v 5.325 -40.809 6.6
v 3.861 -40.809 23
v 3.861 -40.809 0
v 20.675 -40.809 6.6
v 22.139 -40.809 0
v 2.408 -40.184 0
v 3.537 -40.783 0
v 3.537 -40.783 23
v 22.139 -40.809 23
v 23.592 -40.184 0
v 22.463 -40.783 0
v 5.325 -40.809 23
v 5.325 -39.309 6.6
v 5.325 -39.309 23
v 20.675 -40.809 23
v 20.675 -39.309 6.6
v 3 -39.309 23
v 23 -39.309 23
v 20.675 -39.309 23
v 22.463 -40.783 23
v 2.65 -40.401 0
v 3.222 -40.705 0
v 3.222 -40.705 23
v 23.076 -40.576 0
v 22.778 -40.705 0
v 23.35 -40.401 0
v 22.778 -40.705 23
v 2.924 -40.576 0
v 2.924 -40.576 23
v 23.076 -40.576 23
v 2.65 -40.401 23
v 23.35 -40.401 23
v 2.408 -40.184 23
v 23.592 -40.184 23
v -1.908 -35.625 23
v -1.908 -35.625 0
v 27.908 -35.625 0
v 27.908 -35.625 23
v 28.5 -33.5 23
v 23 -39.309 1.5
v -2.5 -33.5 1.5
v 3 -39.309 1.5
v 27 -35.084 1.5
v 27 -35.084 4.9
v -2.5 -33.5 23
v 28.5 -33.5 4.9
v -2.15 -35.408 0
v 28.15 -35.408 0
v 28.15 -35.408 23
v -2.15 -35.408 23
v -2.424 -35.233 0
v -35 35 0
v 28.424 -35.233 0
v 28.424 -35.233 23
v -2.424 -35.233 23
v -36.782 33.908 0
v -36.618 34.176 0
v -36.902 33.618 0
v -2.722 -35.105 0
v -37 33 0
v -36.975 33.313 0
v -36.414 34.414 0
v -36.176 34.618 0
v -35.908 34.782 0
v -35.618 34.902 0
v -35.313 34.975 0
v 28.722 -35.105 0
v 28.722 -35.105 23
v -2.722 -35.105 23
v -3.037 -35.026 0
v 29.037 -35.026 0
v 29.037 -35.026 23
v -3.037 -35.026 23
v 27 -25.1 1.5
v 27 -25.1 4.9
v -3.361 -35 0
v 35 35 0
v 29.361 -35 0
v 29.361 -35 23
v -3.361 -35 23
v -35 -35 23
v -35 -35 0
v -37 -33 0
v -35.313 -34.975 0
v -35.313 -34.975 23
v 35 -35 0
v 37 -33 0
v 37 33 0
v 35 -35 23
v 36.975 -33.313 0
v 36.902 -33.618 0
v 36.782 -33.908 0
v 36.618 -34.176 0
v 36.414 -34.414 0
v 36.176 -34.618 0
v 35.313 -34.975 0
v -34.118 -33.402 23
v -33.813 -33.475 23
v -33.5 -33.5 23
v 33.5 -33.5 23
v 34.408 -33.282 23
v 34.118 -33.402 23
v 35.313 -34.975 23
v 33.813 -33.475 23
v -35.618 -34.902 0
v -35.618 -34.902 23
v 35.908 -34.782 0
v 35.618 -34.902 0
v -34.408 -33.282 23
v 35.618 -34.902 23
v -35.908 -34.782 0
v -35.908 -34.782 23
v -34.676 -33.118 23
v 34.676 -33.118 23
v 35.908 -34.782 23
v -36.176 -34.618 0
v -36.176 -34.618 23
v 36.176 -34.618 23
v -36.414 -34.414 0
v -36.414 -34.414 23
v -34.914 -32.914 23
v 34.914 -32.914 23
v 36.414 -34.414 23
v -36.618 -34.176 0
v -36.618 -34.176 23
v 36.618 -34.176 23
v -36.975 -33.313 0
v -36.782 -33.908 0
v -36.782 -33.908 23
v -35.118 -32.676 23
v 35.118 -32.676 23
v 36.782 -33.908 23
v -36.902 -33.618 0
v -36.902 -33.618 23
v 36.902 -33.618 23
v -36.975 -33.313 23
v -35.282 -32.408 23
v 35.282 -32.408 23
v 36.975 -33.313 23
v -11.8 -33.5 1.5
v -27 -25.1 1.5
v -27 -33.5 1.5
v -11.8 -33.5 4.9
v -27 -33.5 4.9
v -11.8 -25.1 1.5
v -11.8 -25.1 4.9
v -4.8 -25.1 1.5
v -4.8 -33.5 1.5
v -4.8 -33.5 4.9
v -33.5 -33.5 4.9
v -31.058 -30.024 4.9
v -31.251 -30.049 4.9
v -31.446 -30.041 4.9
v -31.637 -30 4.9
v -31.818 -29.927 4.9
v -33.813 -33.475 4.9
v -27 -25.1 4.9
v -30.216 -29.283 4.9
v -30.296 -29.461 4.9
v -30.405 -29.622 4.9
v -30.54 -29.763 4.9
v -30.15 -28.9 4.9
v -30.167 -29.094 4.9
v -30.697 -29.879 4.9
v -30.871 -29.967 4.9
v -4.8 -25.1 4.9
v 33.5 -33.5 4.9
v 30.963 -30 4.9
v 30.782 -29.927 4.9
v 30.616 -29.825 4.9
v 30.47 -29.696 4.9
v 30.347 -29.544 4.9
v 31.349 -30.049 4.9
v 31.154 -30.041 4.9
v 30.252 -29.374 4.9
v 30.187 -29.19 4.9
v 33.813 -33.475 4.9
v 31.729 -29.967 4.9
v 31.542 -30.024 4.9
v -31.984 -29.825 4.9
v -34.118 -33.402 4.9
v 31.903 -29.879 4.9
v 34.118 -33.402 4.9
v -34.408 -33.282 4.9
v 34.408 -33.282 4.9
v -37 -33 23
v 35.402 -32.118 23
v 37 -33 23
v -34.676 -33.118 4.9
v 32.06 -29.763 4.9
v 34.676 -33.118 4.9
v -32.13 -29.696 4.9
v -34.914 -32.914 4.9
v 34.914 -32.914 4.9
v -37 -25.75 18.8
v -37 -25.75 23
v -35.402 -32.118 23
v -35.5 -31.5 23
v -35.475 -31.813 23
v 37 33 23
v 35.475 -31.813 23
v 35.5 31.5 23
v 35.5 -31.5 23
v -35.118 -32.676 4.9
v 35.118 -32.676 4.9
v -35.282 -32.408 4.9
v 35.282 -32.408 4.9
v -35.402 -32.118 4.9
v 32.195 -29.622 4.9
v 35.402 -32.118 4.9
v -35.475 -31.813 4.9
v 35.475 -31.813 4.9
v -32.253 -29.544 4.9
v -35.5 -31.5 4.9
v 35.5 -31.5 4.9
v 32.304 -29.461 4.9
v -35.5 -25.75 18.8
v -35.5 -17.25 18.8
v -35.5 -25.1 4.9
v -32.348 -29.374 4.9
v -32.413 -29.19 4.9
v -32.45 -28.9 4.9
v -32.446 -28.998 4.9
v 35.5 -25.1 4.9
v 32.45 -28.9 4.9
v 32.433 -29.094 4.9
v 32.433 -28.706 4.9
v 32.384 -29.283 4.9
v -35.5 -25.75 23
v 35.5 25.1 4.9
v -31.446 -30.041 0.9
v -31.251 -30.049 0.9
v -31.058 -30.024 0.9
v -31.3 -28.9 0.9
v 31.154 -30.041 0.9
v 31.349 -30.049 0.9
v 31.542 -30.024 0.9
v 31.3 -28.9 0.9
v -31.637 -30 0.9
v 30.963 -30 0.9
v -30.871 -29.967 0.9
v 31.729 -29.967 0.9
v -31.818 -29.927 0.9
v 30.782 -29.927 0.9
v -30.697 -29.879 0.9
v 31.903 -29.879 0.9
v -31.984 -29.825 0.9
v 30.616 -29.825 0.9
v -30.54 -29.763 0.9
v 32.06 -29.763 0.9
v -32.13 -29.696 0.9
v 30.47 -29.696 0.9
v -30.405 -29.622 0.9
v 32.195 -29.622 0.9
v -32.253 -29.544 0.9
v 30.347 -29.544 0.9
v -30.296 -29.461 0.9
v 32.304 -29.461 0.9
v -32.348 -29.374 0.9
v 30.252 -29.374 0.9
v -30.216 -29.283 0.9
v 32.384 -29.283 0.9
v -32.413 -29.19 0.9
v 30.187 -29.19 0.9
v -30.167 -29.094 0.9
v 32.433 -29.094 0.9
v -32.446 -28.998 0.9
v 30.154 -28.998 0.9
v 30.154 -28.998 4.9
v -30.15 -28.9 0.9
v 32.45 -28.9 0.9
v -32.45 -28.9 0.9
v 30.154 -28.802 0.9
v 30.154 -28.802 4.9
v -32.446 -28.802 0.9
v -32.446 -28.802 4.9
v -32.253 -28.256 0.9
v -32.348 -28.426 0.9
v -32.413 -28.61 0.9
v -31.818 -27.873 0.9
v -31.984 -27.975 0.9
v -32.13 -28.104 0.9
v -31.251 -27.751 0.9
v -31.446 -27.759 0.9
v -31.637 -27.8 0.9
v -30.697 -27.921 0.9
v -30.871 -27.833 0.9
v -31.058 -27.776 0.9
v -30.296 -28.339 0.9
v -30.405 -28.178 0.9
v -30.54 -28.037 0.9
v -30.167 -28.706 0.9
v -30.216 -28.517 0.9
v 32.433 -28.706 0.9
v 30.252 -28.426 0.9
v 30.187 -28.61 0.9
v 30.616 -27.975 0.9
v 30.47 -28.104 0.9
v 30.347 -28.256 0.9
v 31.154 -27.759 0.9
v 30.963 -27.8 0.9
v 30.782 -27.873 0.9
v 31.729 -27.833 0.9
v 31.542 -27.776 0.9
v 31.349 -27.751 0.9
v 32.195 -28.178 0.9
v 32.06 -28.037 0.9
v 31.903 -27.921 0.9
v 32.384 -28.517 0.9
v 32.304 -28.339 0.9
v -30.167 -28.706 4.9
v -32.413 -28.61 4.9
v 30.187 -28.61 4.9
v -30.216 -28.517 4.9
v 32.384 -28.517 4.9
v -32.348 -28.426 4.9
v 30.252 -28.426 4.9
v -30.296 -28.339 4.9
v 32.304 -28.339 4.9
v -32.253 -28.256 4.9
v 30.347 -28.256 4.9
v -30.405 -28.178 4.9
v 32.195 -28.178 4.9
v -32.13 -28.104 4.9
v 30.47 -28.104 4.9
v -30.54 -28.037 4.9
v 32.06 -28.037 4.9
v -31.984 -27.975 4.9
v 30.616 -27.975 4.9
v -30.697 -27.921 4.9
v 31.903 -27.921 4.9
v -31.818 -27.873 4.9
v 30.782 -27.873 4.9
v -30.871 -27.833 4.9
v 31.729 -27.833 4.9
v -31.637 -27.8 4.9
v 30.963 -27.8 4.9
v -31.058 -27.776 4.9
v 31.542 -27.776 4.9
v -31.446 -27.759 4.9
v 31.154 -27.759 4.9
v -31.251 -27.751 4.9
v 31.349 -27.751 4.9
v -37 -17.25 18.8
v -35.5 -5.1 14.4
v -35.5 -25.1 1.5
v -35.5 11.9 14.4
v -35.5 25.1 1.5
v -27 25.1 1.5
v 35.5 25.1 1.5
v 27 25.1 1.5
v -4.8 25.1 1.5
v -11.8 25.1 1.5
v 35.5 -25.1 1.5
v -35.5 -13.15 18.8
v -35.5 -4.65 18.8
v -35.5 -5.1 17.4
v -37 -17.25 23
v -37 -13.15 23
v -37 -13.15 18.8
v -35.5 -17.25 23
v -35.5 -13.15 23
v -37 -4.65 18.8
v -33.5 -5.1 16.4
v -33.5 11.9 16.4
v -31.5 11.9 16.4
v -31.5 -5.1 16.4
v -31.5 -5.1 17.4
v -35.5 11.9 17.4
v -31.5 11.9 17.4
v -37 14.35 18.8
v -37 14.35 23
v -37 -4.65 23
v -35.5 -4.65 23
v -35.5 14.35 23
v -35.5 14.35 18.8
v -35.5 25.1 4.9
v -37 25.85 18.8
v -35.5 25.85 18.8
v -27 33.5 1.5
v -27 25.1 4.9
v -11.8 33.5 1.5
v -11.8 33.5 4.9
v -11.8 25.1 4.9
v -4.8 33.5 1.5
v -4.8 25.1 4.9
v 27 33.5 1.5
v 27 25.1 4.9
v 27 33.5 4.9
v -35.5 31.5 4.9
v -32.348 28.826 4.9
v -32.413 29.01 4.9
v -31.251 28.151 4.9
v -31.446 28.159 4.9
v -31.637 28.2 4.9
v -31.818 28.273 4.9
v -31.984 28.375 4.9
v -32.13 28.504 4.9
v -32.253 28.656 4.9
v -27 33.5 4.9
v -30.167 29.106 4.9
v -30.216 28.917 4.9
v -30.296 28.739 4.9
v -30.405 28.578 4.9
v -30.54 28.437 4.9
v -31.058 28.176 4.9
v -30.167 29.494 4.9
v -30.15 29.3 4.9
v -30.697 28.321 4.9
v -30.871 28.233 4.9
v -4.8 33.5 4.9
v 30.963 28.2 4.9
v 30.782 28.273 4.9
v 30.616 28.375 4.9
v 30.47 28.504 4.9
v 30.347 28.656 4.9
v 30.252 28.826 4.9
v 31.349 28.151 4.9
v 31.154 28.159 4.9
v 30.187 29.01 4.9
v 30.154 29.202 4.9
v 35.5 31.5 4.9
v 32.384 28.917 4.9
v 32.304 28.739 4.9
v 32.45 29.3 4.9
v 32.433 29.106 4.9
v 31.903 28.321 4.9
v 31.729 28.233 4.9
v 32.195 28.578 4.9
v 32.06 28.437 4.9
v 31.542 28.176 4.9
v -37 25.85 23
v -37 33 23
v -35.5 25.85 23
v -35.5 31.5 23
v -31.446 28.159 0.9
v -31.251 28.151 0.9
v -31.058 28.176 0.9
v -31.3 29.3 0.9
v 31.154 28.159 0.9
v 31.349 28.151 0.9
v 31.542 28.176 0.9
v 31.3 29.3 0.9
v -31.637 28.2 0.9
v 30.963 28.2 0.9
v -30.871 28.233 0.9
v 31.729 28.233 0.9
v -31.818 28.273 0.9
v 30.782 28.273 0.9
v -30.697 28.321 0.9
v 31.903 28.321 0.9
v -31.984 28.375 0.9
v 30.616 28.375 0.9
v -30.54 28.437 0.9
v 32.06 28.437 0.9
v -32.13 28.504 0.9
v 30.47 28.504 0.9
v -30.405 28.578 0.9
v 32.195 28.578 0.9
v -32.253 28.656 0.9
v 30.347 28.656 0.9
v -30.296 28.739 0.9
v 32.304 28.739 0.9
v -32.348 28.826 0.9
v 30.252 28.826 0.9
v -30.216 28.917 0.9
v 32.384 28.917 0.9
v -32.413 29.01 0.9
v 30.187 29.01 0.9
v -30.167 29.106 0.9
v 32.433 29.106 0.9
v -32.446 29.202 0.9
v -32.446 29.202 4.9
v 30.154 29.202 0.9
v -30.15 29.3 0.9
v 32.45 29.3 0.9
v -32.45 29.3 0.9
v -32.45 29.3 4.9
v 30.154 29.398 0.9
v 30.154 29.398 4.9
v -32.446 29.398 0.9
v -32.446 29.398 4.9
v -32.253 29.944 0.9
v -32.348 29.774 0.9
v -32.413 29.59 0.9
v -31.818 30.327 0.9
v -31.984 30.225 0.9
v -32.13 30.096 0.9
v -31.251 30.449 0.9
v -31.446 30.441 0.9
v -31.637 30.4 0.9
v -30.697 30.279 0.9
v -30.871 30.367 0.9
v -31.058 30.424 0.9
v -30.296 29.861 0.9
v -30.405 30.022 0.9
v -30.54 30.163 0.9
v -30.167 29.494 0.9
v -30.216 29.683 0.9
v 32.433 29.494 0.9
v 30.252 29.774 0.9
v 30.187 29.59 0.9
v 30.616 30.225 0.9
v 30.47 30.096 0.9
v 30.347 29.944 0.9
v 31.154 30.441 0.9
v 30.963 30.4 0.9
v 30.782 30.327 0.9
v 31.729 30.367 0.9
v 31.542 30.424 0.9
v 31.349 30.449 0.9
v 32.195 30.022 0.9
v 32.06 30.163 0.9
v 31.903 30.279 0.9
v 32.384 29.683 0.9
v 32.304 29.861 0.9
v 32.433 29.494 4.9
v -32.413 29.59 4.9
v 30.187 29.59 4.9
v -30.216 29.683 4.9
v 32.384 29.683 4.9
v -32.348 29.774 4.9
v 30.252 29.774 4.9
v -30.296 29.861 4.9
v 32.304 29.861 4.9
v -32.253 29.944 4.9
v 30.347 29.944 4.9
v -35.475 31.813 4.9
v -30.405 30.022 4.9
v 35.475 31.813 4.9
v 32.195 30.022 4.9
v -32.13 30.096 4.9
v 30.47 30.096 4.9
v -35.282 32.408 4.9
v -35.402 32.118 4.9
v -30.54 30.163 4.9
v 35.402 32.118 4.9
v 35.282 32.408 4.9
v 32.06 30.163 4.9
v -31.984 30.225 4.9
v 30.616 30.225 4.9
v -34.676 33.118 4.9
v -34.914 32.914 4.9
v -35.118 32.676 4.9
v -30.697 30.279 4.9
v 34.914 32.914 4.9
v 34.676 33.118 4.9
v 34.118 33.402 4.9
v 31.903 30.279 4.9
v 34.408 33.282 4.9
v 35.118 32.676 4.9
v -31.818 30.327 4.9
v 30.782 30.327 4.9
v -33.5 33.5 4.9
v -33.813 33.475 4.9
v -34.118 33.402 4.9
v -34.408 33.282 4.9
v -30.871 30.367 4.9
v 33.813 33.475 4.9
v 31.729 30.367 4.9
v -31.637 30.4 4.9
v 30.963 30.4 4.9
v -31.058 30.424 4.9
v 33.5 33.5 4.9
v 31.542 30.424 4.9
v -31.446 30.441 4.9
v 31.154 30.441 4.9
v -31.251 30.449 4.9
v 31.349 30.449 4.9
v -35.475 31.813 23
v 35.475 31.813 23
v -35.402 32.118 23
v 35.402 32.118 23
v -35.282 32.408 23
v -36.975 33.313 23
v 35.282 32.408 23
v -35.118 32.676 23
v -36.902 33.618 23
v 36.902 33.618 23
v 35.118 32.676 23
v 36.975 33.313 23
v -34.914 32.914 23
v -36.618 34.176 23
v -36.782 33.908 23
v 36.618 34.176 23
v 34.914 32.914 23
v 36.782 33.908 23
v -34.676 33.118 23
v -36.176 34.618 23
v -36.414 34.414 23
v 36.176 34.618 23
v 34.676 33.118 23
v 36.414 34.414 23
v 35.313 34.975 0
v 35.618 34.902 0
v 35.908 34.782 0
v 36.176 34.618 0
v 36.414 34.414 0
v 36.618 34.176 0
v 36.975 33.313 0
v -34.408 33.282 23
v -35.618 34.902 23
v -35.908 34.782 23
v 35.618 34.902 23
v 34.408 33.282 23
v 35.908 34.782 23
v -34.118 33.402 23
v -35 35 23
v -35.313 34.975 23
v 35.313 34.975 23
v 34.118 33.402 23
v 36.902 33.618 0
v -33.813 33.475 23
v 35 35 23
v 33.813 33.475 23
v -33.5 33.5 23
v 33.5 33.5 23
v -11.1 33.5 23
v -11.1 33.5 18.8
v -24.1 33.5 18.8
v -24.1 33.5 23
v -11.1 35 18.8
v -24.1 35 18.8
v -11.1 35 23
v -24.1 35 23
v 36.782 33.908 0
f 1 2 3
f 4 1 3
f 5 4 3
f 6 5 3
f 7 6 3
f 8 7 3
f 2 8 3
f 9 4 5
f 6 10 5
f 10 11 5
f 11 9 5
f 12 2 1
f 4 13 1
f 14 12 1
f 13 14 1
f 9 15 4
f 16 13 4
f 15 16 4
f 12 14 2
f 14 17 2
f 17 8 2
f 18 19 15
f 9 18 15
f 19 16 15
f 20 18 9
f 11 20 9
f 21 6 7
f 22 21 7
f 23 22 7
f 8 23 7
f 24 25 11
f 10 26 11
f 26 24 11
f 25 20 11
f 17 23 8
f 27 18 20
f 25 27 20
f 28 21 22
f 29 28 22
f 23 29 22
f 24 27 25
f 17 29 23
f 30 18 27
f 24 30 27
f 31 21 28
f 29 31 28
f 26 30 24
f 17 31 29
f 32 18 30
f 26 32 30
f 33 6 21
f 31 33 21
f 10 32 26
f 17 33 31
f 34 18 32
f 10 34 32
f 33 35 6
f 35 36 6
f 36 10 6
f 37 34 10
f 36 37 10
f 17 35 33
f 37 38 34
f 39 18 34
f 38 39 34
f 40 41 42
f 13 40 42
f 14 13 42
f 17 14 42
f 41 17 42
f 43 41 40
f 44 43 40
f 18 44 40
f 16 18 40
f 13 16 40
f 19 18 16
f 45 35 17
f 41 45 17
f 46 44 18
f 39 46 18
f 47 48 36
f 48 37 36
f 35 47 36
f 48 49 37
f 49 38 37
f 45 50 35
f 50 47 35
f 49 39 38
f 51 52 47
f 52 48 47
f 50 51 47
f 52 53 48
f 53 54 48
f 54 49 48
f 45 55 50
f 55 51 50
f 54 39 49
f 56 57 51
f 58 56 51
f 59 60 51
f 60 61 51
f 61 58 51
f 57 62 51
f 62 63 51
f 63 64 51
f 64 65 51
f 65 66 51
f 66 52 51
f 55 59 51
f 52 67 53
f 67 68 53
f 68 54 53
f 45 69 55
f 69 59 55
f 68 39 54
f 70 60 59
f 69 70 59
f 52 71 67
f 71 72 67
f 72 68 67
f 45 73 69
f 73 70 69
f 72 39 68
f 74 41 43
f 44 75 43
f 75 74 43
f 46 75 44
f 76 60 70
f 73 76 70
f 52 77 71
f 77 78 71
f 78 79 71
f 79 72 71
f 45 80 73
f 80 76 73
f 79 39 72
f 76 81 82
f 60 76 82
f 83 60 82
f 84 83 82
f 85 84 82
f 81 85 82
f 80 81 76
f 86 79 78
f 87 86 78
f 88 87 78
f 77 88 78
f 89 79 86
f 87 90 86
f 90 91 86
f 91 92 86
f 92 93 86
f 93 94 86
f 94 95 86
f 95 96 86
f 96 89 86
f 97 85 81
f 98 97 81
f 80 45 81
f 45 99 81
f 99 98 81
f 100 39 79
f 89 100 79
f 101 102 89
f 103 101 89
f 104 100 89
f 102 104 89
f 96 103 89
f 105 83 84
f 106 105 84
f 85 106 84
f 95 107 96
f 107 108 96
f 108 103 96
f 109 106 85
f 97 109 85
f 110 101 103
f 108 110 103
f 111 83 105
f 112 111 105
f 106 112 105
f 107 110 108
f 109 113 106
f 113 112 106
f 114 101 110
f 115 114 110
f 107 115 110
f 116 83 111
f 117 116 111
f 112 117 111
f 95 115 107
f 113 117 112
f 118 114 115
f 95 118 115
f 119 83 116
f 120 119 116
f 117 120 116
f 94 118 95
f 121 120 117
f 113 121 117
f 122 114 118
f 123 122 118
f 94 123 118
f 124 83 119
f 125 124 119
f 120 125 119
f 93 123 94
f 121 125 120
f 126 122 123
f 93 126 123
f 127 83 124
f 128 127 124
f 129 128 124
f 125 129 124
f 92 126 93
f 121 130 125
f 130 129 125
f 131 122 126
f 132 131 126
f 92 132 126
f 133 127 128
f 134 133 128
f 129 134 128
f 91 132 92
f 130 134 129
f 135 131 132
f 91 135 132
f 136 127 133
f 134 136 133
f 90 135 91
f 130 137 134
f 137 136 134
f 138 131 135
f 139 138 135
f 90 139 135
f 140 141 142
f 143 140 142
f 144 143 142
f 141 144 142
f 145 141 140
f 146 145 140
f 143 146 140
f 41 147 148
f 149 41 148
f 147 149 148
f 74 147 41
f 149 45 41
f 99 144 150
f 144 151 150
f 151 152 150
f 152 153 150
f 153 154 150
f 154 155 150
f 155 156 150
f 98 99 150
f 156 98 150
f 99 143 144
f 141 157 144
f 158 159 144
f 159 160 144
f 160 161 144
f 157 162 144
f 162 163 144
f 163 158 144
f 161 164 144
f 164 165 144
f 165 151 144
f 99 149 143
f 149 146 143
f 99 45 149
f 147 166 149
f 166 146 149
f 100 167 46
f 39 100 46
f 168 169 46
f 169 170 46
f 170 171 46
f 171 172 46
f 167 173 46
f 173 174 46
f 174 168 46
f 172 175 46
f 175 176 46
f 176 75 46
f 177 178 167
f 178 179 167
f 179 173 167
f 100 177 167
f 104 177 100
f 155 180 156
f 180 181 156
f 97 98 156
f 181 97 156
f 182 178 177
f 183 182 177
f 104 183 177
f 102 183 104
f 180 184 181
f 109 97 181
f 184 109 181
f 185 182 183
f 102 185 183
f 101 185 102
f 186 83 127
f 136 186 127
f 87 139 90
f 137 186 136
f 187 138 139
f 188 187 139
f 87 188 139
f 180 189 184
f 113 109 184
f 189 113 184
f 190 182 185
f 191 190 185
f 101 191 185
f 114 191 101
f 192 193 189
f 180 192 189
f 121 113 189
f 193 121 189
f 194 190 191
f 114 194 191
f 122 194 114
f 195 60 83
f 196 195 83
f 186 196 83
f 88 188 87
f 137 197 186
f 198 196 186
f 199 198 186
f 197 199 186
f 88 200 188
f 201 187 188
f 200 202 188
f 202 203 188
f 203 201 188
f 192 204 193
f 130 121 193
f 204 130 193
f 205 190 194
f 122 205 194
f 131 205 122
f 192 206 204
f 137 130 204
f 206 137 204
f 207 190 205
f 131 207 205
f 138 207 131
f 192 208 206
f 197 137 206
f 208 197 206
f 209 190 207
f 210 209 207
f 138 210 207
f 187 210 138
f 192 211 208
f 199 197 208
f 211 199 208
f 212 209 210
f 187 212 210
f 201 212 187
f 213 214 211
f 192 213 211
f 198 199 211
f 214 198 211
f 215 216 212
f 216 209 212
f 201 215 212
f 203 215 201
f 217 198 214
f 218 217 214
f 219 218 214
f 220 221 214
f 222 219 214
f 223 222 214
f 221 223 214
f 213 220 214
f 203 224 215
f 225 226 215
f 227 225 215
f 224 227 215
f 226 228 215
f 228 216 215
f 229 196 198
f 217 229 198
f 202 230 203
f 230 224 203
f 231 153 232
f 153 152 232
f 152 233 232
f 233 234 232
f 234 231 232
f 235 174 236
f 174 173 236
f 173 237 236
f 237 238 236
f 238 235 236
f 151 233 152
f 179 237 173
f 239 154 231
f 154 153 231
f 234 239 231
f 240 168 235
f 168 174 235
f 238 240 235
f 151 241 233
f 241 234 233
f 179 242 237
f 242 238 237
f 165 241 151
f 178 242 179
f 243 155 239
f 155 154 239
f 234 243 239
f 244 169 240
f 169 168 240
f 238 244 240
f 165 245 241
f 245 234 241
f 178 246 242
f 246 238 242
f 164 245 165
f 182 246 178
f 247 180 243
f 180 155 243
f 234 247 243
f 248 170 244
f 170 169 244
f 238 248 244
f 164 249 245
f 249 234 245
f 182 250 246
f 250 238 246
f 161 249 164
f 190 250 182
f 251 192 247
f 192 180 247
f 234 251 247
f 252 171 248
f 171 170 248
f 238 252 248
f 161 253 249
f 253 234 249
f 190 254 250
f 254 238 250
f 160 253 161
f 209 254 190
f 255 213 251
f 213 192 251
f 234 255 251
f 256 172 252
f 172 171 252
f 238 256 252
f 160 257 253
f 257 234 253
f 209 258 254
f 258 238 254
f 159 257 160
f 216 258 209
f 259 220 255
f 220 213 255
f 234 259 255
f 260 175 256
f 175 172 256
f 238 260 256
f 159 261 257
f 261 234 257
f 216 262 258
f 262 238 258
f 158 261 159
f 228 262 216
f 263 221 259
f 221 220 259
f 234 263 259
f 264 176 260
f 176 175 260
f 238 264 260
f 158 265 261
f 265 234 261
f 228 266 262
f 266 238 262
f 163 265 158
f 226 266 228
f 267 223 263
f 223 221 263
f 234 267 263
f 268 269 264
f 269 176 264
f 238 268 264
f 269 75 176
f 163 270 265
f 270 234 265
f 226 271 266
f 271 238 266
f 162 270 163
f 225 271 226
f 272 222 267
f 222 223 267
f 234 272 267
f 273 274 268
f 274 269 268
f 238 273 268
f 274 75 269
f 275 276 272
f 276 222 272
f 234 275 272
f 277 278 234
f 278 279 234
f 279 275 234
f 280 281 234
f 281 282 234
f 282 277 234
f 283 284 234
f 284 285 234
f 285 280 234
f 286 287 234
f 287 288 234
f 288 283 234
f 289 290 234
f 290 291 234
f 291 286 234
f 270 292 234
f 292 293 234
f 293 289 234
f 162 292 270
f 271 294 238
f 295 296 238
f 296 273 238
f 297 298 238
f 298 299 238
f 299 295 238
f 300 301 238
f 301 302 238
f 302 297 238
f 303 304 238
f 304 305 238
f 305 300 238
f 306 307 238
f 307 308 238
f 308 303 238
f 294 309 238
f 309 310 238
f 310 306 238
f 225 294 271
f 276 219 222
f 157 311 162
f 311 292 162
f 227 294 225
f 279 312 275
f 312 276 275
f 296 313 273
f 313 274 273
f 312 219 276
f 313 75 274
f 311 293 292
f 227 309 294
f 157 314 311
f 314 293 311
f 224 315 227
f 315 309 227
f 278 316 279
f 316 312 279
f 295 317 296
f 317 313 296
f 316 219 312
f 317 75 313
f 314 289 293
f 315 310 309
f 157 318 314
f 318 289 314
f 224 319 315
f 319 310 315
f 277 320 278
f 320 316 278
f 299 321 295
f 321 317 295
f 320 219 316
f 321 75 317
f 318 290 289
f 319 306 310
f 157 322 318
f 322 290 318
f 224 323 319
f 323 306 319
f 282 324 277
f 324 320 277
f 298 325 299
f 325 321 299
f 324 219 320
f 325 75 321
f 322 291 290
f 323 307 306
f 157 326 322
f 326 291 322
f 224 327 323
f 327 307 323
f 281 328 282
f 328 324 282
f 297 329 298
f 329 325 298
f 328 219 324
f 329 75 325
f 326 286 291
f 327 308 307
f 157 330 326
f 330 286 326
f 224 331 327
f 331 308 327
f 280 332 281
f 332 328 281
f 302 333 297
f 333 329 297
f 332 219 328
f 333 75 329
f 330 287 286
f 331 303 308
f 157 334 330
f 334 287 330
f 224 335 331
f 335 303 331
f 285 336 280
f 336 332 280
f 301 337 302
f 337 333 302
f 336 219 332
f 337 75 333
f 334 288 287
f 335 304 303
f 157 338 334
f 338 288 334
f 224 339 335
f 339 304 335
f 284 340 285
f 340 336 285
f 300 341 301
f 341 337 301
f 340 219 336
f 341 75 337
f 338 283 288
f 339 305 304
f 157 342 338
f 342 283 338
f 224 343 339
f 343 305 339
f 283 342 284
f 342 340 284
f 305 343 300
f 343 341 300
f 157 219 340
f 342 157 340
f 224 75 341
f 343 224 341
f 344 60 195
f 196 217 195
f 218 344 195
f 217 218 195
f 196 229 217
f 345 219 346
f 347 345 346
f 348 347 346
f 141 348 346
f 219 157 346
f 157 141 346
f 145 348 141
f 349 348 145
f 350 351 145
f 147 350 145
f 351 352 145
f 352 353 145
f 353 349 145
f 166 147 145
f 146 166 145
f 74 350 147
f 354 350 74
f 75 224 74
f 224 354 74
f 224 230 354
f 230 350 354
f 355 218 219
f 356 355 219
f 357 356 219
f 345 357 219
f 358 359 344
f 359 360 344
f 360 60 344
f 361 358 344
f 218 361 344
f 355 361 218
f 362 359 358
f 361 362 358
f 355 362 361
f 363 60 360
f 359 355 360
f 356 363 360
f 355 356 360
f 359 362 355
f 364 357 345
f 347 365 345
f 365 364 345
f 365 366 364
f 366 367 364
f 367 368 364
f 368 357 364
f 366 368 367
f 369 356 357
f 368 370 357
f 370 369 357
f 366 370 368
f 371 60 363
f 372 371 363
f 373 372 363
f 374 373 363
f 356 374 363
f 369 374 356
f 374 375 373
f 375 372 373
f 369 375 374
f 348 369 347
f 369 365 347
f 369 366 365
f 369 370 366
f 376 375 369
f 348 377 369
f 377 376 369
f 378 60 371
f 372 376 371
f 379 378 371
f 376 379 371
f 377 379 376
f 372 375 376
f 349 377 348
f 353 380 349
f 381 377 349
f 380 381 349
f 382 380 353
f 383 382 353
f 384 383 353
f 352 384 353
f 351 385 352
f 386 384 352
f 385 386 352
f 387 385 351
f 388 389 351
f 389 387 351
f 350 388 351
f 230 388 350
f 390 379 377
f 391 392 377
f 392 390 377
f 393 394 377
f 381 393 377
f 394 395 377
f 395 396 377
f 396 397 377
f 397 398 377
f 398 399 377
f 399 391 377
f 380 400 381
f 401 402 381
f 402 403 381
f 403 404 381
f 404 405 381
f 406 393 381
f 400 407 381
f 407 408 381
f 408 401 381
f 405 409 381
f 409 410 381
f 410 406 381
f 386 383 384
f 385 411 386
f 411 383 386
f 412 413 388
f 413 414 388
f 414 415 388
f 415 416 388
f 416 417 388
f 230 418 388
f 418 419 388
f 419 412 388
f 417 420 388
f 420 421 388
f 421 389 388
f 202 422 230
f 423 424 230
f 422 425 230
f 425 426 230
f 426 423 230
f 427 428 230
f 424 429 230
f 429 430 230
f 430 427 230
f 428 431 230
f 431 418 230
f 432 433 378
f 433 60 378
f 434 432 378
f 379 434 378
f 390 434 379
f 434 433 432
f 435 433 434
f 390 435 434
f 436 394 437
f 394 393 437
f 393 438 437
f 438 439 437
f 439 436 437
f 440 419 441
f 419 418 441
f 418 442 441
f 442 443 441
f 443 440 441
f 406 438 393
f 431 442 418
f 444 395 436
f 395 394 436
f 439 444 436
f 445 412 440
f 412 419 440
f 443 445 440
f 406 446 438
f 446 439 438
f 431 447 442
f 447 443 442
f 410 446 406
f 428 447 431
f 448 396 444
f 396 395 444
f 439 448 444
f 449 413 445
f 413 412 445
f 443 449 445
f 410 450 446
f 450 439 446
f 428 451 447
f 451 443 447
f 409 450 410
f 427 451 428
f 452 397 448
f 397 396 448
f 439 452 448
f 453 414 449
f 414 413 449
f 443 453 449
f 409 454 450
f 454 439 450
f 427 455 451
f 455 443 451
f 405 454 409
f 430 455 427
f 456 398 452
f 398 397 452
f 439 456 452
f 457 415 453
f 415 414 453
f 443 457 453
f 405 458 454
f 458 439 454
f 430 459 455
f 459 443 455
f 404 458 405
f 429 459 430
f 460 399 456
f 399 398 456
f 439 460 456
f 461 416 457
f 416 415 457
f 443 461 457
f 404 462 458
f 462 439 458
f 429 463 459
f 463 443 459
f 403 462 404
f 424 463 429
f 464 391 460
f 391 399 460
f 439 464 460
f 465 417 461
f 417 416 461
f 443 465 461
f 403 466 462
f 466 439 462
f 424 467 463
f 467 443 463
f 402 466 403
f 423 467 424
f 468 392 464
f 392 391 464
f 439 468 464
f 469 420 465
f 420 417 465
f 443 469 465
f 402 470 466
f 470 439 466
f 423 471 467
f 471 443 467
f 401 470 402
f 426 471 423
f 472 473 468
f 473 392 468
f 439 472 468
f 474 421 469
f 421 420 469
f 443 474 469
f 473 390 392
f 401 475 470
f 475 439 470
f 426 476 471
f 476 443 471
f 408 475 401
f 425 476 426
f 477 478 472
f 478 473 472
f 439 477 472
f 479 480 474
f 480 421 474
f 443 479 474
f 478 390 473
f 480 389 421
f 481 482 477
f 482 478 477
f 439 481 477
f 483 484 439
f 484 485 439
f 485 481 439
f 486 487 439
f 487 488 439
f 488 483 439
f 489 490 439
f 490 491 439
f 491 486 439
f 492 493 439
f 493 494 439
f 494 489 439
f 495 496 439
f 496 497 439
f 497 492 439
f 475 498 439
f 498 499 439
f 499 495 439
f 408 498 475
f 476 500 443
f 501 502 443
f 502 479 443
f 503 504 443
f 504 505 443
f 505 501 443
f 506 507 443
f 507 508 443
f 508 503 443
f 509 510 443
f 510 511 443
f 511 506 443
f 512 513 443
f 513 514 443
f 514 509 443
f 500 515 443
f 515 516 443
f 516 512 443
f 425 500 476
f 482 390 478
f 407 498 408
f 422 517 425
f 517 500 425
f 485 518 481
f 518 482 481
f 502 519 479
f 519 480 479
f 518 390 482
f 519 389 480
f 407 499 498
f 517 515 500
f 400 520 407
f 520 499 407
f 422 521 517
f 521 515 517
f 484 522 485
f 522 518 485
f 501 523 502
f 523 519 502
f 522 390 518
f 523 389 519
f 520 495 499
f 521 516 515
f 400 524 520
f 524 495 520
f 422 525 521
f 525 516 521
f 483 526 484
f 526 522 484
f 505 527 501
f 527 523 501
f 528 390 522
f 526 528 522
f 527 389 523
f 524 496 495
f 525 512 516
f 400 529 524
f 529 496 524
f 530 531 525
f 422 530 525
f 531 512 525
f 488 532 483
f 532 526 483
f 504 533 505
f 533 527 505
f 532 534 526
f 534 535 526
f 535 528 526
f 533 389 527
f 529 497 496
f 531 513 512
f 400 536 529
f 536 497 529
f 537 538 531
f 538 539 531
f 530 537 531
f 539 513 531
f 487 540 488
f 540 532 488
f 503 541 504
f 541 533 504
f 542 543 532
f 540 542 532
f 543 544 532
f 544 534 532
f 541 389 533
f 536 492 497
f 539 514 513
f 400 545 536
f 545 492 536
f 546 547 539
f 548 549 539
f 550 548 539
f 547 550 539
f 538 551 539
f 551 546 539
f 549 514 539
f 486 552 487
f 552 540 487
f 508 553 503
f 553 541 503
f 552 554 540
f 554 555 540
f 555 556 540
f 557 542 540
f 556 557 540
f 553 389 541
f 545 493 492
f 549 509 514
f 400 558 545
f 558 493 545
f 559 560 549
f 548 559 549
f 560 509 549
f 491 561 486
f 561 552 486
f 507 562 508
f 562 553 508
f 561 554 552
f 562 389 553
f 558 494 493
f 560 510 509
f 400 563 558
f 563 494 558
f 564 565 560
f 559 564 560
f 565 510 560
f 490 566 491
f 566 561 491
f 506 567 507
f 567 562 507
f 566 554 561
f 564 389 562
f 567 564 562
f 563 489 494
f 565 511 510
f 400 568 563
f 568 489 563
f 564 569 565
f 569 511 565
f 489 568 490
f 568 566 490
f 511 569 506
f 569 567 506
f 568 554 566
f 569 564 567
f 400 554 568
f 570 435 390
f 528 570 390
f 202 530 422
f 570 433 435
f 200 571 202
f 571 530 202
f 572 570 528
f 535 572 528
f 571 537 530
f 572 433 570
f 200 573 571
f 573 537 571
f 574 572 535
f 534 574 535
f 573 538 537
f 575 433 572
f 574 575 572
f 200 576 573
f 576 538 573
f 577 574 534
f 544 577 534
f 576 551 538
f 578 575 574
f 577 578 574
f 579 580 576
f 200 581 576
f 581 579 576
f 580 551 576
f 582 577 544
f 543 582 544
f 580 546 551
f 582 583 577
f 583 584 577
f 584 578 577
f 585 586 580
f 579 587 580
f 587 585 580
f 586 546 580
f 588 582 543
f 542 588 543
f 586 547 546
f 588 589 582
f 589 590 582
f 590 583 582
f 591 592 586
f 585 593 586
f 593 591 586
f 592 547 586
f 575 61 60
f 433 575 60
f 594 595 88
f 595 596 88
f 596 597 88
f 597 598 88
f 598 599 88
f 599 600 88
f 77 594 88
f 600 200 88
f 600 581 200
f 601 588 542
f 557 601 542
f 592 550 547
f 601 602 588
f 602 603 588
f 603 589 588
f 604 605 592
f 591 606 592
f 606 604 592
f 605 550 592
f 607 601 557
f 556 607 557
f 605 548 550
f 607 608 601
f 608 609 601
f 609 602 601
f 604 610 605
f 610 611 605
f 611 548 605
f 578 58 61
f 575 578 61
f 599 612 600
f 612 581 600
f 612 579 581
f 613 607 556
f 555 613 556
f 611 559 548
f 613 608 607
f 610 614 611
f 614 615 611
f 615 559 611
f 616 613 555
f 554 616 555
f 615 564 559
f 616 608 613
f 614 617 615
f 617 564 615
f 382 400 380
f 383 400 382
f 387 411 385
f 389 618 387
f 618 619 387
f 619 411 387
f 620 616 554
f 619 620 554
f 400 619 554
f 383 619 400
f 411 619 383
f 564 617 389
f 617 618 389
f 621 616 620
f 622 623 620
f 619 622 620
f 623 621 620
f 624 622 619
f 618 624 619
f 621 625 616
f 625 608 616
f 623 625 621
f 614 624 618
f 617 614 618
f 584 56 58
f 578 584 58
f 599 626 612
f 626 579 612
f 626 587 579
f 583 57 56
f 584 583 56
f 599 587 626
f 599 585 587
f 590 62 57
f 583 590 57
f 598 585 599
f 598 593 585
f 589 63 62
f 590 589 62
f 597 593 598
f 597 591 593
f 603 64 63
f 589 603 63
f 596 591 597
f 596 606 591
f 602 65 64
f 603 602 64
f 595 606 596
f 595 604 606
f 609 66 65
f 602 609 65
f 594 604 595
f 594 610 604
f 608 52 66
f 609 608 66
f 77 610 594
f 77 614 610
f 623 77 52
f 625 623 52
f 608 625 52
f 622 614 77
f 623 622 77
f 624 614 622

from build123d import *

# Parameters (mm, degrees)
BOSS_EXTRU_1_DEPTH      = 23
ENL_V_MAT_EXTRU_1_DEPTH = 21.5
ESQUISSE3_W             = 8.5
ESQUISSE3_H             = 8.4
BOSS_EXTRU_3_DEPTH      = 3.4
BOSS_EXTRU_5_REACH      = 9.309
ESQUISSE4_W             = 1.5
ESQUISSE4_H             = 3.406602833
ESQUISSE23_R            = 1.15
ENL_V_MAT_EXTRU_2_DEPTH = 4
ESQUISSE24_W            = 7
ESQUISSE24_H            = 8.4
BOSS_EXTRU_6_DEPTH      = 3.4
ENL_V_MAT_EXTRU_4_REACH = 77.809
ESQUISSE26_W            = 15.35
ESQUISSE26_H            = 16.4
ESQUISSE27_W            = 1
ESQUISSE27_H            = 17
BOSS_EXTRU_7_DEPTH      = 4
CHANFREIN1_SIZE         = 2
ENL_V_MAT_EXTRU_5_REACH = 76
ESQUISSE28_W            = 4.2
ESQUISSE28_H            = 11.5
ENL_V_MAT_EXTRU_6_REACH = 76
ESQUISSE29_W            = 4.2
ESQUISSE29_H            = 8.5
ESQUISSE30_W            = 13
ESQUISSE30_H            = 4.2
ENL_V_MAT_EXTRU_8_DEPTH = 4
CONG_1_R                = 2


with BuildPart() as part:
    # Esquisse1 → Boss.-Extru.1 (new body)
    with BuildSketch(Plane.XY):
        Polygon((-2.5, -35), (3, -40.809475019), (23, -40.809475019), (28.5, -35), (37, -35), (37, 35), (-37, 35), (-37, -35), align=None)
    extrude(amount=BOSS_EXTRU_1_DEPTH)

    # Esquisse2 → Enlèv. mat.-Extru.1 (cut)
    with BuildSketch(Plane.XY.offset(23)):
        Polygon((-2.5, -33.5), (3, -39.309475019), (23, -39.309475019), (28.5, -33.5), (35.5, -33.5), (35.5, 33.5), (-35.5, 33.5), (-35.5, -33.5), align=None)
    extrude(amount=-ENL_V_MAT_EXTRU_1_DEPTH, mode=Mode.SUBTRACT)

    # Esquisse3 → Boss.-Extru.3 (add)
    with BuildSketch(Plane.XY.offset(1.5)):
        with Locations((31.25, 29.3)):
            Rectangle(ESQUISSE3_W, ESQUISSE3_H)
        with Locations((-31.25, 29.3)):
            Rectangle(ESQUISSE3_W, ESQUISSE3_H)
        with Locations((31.25, -29.3)):
            Rectangle(ESQUISSE3_W, ESQUISSE3_H)
        with Locations((-31.25, -29.3)):
            Rectangle(ESQUISSE3_W, ESQUISSE3_H)
    extrude(amount=BOSS_EXTRU_3_DEPTH)

    # Esquisse4 → Boss.-Extru.5 (add, up to next)
    with BuildSketch(Plane.XZ.offset(33.5), mode=Mode.PRIVATE) as boss_extru_5_sk1:
        with Locations((27.75, 3.196698584)):
            Rectangle(ESQUISSE4_W, ESQUISSE4_H)
    boss_extru_5_tool1 = extrude(boss_extru_5_sk1.sketch, amount=BOSS_EXTRU_5_REACH, mode=Mode.PRIVATE) - part.part
    add(boss_extru_5_tool1.solids().sort_by_distance((27.75, -33.5, 3.196699))[0])

    # Esquisse23 → Enlèv. mat.-Extru.2 (cut)
    with BuildSketch(Plane.XY.offset(4.9)):
        with Locations((31.3, 29.3)):
            Circle(ESQUISSE23_R)
        with Locations((-31.3, 29.3)):
            Circle(ESQUISSE23_R)
        with Locations((31.3, -28.9)):
            Circle(ESQUISSE23_R)
        with Locations((-31.3, -28.9)):
            Circle(ESQUISSE23_R)
    extrude(amount=-ENL_V_MAT_EXTRU_2_DEPTH, mode=Mode.SUBTRACT)

    # Esquisse24 → Boss.-Extru.6 (add)
    with BuildSketch(Plane.XY.offset(1.5)):
        with Locations((-8.3, 29.3)):
            Rectangle(ESQUISSE24_W, ESQUISSE24_H)
        with Locations((-8.3, -29.3)):
            Rectangle(ESQUISSE24_W, ESQUISSE24_H)
    extrude(amount=BOSS_EXTRU_6_DEPTH)

    # Esquisse26 → Enlèv. mat.-Extru.4 (cut, up to next)
    with BuildSketch(Plane.XZ.offset(40.809475019), mode=Mode.PRIVATE) as enl_v_mat_extru_4_sk1:
        with Locations((13, 14.8)):
            Rectangle(ESQUISSE26_W, ESQUISSE26_H)
    enl_v_mat_extru_4_tool1 = extrude(enl_v_mat_extru_4_sk1.sketch, amount=-ENL_V_MAT_EXTRU_4_REACH, mode=Mode.PRIVATE) & part.part
    add(enl_v_mat_extru_4_tool1.solids().sort_by_distance((13, -40.809475, 14.8))[0], mode=Mode.SUBTRACT)

    # Esquisse27 → Boss.-Extru.7 (add)
    with BuildSketch(Plane(origin=(-35.5, 0, 0), x_dir=(0, 0, -1), z_dir=(1, 0, 0))):
        with Locations((-16.9, 3.4)):
            Rectangle(ESQUISSE27_W, ESQUISSE27_H)
    extrude(amount=BOSS_EXTRU_7_DEPTH)

    # Chanfrein1
    chanfrein1_edges = [part.edges().sort_by_distance(p)[0] for p in [
        (-35.5, 3.4, 16.4),
    ]]
    chamfer(chanfrein1_edges, length=CHANFREIN1_SIZE)

    # Esquisse28 → Enlèv. mat.-Extru.5 (cut, up to next)
    with BuildSketch(Plane.ZY.offset(37), mode=Mode.PRIVATE) as enl_v_mat_extru_5_sk1:
        with Locations((20.9, 20.1)):
            Rectangle(ESQUISSE28_W, ESQUISSE28_H)
    enl_v_mat_extru_5_tool1 = extrude(enl_v_mat_extru_5_sk1.sketch, amount=-ENL_V_MAT_EXTRU_5_REACH, mode=Mode.PRIVATE) & part.part
    add(enl_v_mat_extru_5_tool1.solids().sort_by_distance((-37, 20.1, 20.9))[0], mode=Mode.SUBTRACT)

    # Esquisse29 → Enlèv. mat.-Extru.6 (cut, up to next)
    with BuildSketch(Plane.ZY.offset(37), mode=Mode.PRIVATE) as enl_v_mat_extru_6_sk1:
        with Locations((20.9, -8.9)):
            Rectangle(ESQUISSE29_W, ESQUISSE29_H)
    enl_v_mat_extru_6_tool1 = extrude(enl_v_mat_extru_6_sk1.sketch, amount=-ENL_V_MAT_EXTRU_6_REACH, mode=Mode.PRIVATE) & part.part
    add(enl_v_mat_extru_6_tool1.solids().sort_by_distance((-37, -8.9, 20.9))[0], mode=Mode.SUBTRACT)
    # Esquisse29 → Enlèv. mat.-Extru.6 (cut, up to next)
    with BuildSketch(Plane.ZY.offset(37), mode=Mode.PRIVATE) as enl_v_mat_extru_6_sk2:
        with Locations((20.9, -21.5)):
            Rectangle(ESQUISSE29_W, ESQUISSE29_H)
    enl_v_mat_extru_6_tool2 = extrude(enl_v_mat_extru_6_sk2.sketch, amount=-ENL_V_MAT_EXTRU_6_REACH, mode=Mode.PRIVATE) & part.part
    add(enl_v_mat_extru_6_tool2.solids().sort_by_distance((-37, -21.5, 20.9))[0], mode=Mode.SUBTRACT)

    # Esquisse30 → Enlèv. mat.-Extru.8 (cut)
    with BuildSketch(Plane(origin=(0, 35, 0), x_dir=(1, 0, 0), z_dir=(0, 1, 0))):
        with Locations((-17.6, -20.9)):
            Rectangle(ESQUISSE30_W, ESQUISSE30_H)
    extrude(amount=-ENL_V_MAT_EXTRU_8_DEPTH, mode=Mode.SUBTRACT)

    # Congé1
    cong_1_edges = [part.edges().sort_by_distance(p)[0] for p in [
        (28.5, -35, 11.5),
        (23, -40.809475019, 11.5),
        (3, -40.809475019, 11.5),
        (-2.5, -35, 11.5),
        (-37, -35, 11.5),
        (-37, 35, 11.5),
        (37, 35, 11.5),
        (37, -35, 11.5),
        (35.5, 33.5, 13.95),
        (-35.5, 33.5, 13.95),
        (35.5, -33.5, 13.95),
        (-35.5, -33.5, 13.95),
    ]]
    fillet(cong_1_edges, radius=CONG_1_R)


solid = part.part
